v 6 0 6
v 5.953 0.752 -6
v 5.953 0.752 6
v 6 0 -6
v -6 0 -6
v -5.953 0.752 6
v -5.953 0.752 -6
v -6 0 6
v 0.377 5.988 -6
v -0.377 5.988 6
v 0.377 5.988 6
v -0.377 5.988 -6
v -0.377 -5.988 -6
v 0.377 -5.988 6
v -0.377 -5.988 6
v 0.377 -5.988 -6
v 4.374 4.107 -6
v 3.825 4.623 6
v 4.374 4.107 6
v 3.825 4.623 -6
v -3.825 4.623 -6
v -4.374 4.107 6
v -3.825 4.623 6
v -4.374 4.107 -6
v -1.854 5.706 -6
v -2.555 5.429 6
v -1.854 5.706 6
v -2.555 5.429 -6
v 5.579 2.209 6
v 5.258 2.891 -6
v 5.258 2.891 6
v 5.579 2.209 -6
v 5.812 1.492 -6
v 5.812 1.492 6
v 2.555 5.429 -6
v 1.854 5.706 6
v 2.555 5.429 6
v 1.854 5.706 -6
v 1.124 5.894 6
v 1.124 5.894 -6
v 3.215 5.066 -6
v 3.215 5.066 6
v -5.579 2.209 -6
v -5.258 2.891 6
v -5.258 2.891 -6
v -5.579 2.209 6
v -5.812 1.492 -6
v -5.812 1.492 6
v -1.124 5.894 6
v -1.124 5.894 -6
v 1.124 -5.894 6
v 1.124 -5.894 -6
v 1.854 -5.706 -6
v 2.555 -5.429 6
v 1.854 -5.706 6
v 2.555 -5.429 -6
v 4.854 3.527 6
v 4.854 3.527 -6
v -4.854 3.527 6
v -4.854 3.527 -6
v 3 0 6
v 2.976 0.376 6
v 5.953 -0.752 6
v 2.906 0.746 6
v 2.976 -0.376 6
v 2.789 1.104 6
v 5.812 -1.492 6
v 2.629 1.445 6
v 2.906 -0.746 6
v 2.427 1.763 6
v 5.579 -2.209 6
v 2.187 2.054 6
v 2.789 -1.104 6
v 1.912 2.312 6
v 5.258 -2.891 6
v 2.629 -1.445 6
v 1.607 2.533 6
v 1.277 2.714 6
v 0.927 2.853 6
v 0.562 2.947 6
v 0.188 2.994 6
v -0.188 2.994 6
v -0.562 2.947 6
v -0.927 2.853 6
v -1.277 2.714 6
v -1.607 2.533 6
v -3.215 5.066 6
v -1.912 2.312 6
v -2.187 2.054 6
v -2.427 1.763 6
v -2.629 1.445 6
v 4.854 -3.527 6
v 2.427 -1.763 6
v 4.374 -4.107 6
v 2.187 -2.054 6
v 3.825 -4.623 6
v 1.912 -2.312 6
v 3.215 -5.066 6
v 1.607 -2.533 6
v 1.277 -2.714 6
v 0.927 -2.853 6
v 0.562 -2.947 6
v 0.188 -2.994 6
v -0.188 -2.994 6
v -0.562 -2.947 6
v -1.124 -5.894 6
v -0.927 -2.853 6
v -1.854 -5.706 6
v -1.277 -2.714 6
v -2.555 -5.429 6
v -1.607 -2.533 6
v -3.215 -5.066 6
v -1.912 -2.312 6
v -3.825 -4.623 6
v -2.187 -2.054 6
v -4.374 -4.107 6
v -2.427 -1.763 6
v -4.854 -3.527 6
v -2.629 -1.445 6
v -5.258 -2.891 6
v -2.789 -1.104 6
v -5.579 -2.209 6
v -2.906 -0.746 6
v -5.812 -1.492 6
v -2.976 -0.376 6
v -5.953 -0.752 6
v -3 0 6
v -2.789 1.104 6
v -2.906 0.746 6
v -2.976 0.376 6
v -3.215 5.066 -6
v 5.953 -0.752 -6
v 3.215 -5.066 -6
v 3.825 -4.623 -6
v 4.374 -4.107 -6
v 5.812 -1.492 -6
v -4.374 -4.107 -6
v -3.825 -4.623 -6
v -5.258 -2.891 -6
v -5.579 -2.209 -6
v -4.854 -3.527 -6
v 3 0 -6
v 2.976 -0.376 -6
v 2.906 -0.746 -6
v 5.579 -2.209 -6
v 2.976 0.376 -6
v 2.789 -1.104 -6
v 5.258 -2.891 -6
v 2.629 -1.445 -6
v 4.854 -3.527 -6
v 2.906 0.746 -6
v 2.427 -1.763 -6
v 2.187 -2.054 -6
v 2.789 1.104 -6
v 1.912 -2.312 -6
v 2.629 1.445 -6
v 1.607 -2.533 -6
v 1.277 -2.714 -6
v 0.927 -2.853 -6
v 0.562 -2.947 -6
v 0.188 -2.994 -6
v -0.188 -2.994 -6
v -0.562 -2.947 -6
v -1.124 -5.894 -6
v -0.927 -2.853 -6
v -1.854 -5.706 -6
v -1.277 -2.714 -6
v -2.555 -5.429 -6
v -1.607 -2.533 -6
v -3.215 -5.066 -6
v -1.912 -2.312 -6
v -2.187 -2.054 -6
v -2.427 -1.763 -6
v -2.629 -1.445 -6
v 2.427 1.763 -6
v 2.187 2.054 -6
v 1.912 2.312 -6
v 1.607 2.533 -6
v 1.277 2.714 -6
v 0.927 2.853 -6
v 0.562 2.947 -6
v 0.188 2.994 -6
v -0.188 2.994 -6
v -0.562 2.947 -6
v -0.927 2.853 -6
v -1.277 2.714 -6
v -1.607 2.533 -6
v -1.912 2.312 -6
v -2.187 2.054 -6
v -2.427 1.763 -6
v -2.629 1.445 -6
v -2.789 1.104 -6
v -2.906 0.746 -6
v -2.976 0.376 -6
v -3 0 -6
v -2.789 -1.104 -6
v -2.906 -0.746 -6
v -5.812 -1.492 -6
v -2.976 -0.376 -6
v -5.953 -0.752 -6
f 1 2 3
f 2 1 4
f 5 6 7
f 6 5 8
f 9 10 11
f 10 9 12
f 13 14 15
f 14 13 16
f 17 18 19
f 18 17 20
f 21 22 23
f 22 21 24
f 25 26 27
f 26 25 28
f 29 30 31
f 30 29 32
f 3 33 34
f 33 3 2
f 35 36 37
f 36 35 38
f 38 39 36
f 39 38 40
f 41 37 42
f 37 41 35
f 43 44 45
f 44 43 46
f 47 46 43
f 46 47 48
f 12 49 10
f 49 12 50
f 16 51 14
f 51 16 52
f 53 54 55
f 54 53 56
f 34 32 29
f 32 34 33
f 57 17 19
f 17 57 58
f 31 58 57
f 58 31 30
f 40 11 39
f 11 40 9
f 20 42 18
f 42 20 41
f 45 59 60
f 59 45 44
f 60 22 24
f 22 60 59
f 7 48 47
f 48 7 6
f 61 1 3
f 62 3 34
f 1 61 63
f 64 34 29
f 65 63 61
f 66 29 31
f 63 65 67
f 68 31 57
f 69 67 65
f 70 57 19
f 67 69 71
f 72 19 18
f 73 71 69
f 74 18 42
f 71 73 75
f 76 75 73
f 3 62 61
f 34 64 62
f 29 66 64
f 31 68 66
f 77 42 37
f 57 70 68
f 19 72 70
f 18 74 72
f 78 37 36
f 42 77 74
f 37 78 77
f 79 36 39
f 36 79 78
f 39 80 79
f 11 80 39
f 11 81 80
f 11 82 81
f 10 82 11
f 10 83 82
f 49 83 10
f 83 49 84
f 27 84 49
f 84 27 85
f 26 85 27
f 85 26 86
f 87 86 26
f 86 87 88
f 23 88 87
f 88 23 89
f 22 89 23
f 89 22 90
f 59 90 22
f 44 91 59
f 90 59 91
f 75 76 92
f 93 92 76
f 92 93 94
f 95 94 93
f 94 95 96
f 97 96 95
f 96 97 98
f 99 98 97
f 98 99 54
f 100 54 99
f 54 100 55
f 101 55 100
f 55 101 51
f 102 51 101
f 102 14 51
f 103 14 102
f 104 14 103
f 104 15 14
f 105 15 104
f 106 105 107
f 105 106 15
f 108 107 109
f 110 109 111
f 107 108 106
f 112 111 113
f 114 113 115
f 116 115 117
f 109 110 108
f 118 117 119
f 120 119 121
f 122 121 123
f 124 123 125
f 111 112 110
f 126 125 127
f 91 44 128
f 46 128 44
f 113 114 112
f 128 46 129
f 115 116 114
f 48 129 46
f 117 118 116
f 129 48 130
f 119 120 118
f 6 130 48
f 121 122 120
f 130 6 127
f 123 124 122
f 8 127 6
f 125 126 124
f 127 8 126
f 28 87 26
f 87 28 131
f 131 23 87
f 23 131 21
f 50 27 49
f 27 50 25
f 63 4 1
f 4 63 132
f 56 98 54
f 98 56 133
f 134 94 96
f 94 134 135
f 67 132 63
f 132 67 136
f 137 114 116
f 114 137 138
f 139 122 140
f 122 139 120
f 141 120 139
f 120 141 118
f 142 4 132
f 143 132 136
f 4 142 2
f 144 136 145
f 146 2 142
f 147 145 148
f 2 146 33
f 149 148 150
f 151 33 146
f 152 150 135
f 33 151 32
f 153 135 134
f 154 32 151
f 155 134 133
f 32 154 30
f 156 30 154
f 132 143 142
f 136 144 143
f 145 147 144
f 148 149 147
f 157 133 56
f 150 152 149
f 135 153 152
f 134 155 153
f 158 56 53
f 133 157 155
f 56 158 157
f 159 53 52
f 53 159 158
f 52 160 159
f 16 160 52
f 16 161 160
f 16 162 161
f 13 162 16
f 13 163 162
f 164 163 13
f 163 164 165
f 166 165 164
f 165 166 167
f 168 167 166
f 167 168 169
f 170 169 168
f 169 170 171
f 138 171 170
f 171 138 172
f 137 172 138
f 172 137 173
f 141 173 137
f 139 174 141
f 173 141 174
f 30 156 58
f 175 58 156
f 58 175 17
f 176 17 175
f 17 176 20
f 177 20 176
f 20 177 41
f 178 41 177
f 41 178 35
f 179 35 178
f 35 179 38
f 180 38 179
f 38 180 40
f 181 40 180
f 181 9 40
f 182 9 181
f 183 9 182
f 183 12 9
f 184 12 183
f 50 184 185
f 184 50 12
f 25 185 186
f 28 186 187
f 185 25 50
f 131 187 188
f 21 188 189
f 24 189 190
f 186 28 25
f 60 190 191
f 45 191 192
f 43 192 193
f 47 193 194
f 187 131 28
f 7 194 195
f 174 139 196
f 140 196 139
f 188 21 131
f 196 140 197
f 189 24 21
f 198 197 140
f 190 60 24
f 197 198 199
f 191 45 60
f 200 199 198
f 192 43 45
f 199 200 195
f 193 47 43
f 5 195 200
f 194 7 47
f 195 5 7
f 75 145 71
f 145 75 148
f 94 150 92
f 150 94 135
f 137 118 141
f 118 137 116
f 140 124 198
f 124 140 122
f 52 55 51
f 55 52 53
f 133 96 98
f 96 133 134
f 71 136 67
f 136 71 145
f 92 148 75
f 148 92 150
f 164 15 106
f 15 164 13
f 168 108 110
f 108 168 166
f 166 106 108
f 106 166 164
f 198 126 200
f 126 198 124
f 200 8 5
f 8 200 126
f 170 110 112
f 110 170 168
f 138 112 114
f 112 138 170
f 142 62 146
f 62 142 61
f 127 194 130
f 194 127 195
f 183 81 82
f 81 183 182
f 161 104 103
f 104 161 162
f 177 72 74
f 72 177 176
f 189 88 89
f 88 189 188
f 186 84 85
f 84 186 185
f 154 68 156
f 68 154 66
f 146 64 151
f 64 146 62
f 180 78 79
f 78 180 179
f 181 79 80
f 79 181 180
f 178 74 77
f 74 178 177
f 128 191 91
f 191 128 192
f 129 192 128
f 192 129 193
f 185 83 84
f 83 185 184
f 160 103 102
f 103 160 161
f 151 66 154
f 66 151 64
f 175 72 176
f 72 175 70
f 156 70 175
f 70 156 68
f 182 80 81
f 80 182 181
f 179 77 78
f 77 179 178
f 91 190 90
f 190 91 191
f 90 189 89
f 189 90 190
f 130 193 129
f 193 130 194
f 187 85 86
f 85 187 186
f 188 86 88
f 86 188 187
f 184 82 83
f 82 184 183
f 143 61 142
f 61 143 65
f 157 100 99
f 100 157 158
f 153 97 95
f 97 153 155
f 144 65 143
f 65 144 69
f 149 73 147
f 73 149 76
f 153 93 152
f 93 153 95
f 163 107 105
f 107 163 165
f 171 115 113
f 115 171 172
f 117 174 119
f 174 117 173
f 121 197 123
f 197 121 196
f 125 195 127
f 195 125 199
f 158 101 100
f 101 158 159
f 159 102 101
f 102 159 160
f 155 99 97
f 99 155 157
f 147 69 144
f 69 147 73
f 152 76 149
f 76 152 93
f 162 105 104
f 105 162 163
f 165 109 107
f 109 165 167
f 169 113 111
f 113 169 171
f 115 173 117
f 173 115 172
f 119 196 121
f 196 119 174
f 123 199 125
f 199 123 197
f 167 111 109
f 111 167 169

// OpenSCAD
$fn = 50;


difference() {
	union() {
		translate(v = [0, 0, -6.0000000000]) {
			cylinder(h = 12, r = 6.0000000000);
		}
	}
	union() {
		translate(v = [0, 0, -100.0000000000]) {
			cylinder(h = 200, r = 3);
		}
	}
}
